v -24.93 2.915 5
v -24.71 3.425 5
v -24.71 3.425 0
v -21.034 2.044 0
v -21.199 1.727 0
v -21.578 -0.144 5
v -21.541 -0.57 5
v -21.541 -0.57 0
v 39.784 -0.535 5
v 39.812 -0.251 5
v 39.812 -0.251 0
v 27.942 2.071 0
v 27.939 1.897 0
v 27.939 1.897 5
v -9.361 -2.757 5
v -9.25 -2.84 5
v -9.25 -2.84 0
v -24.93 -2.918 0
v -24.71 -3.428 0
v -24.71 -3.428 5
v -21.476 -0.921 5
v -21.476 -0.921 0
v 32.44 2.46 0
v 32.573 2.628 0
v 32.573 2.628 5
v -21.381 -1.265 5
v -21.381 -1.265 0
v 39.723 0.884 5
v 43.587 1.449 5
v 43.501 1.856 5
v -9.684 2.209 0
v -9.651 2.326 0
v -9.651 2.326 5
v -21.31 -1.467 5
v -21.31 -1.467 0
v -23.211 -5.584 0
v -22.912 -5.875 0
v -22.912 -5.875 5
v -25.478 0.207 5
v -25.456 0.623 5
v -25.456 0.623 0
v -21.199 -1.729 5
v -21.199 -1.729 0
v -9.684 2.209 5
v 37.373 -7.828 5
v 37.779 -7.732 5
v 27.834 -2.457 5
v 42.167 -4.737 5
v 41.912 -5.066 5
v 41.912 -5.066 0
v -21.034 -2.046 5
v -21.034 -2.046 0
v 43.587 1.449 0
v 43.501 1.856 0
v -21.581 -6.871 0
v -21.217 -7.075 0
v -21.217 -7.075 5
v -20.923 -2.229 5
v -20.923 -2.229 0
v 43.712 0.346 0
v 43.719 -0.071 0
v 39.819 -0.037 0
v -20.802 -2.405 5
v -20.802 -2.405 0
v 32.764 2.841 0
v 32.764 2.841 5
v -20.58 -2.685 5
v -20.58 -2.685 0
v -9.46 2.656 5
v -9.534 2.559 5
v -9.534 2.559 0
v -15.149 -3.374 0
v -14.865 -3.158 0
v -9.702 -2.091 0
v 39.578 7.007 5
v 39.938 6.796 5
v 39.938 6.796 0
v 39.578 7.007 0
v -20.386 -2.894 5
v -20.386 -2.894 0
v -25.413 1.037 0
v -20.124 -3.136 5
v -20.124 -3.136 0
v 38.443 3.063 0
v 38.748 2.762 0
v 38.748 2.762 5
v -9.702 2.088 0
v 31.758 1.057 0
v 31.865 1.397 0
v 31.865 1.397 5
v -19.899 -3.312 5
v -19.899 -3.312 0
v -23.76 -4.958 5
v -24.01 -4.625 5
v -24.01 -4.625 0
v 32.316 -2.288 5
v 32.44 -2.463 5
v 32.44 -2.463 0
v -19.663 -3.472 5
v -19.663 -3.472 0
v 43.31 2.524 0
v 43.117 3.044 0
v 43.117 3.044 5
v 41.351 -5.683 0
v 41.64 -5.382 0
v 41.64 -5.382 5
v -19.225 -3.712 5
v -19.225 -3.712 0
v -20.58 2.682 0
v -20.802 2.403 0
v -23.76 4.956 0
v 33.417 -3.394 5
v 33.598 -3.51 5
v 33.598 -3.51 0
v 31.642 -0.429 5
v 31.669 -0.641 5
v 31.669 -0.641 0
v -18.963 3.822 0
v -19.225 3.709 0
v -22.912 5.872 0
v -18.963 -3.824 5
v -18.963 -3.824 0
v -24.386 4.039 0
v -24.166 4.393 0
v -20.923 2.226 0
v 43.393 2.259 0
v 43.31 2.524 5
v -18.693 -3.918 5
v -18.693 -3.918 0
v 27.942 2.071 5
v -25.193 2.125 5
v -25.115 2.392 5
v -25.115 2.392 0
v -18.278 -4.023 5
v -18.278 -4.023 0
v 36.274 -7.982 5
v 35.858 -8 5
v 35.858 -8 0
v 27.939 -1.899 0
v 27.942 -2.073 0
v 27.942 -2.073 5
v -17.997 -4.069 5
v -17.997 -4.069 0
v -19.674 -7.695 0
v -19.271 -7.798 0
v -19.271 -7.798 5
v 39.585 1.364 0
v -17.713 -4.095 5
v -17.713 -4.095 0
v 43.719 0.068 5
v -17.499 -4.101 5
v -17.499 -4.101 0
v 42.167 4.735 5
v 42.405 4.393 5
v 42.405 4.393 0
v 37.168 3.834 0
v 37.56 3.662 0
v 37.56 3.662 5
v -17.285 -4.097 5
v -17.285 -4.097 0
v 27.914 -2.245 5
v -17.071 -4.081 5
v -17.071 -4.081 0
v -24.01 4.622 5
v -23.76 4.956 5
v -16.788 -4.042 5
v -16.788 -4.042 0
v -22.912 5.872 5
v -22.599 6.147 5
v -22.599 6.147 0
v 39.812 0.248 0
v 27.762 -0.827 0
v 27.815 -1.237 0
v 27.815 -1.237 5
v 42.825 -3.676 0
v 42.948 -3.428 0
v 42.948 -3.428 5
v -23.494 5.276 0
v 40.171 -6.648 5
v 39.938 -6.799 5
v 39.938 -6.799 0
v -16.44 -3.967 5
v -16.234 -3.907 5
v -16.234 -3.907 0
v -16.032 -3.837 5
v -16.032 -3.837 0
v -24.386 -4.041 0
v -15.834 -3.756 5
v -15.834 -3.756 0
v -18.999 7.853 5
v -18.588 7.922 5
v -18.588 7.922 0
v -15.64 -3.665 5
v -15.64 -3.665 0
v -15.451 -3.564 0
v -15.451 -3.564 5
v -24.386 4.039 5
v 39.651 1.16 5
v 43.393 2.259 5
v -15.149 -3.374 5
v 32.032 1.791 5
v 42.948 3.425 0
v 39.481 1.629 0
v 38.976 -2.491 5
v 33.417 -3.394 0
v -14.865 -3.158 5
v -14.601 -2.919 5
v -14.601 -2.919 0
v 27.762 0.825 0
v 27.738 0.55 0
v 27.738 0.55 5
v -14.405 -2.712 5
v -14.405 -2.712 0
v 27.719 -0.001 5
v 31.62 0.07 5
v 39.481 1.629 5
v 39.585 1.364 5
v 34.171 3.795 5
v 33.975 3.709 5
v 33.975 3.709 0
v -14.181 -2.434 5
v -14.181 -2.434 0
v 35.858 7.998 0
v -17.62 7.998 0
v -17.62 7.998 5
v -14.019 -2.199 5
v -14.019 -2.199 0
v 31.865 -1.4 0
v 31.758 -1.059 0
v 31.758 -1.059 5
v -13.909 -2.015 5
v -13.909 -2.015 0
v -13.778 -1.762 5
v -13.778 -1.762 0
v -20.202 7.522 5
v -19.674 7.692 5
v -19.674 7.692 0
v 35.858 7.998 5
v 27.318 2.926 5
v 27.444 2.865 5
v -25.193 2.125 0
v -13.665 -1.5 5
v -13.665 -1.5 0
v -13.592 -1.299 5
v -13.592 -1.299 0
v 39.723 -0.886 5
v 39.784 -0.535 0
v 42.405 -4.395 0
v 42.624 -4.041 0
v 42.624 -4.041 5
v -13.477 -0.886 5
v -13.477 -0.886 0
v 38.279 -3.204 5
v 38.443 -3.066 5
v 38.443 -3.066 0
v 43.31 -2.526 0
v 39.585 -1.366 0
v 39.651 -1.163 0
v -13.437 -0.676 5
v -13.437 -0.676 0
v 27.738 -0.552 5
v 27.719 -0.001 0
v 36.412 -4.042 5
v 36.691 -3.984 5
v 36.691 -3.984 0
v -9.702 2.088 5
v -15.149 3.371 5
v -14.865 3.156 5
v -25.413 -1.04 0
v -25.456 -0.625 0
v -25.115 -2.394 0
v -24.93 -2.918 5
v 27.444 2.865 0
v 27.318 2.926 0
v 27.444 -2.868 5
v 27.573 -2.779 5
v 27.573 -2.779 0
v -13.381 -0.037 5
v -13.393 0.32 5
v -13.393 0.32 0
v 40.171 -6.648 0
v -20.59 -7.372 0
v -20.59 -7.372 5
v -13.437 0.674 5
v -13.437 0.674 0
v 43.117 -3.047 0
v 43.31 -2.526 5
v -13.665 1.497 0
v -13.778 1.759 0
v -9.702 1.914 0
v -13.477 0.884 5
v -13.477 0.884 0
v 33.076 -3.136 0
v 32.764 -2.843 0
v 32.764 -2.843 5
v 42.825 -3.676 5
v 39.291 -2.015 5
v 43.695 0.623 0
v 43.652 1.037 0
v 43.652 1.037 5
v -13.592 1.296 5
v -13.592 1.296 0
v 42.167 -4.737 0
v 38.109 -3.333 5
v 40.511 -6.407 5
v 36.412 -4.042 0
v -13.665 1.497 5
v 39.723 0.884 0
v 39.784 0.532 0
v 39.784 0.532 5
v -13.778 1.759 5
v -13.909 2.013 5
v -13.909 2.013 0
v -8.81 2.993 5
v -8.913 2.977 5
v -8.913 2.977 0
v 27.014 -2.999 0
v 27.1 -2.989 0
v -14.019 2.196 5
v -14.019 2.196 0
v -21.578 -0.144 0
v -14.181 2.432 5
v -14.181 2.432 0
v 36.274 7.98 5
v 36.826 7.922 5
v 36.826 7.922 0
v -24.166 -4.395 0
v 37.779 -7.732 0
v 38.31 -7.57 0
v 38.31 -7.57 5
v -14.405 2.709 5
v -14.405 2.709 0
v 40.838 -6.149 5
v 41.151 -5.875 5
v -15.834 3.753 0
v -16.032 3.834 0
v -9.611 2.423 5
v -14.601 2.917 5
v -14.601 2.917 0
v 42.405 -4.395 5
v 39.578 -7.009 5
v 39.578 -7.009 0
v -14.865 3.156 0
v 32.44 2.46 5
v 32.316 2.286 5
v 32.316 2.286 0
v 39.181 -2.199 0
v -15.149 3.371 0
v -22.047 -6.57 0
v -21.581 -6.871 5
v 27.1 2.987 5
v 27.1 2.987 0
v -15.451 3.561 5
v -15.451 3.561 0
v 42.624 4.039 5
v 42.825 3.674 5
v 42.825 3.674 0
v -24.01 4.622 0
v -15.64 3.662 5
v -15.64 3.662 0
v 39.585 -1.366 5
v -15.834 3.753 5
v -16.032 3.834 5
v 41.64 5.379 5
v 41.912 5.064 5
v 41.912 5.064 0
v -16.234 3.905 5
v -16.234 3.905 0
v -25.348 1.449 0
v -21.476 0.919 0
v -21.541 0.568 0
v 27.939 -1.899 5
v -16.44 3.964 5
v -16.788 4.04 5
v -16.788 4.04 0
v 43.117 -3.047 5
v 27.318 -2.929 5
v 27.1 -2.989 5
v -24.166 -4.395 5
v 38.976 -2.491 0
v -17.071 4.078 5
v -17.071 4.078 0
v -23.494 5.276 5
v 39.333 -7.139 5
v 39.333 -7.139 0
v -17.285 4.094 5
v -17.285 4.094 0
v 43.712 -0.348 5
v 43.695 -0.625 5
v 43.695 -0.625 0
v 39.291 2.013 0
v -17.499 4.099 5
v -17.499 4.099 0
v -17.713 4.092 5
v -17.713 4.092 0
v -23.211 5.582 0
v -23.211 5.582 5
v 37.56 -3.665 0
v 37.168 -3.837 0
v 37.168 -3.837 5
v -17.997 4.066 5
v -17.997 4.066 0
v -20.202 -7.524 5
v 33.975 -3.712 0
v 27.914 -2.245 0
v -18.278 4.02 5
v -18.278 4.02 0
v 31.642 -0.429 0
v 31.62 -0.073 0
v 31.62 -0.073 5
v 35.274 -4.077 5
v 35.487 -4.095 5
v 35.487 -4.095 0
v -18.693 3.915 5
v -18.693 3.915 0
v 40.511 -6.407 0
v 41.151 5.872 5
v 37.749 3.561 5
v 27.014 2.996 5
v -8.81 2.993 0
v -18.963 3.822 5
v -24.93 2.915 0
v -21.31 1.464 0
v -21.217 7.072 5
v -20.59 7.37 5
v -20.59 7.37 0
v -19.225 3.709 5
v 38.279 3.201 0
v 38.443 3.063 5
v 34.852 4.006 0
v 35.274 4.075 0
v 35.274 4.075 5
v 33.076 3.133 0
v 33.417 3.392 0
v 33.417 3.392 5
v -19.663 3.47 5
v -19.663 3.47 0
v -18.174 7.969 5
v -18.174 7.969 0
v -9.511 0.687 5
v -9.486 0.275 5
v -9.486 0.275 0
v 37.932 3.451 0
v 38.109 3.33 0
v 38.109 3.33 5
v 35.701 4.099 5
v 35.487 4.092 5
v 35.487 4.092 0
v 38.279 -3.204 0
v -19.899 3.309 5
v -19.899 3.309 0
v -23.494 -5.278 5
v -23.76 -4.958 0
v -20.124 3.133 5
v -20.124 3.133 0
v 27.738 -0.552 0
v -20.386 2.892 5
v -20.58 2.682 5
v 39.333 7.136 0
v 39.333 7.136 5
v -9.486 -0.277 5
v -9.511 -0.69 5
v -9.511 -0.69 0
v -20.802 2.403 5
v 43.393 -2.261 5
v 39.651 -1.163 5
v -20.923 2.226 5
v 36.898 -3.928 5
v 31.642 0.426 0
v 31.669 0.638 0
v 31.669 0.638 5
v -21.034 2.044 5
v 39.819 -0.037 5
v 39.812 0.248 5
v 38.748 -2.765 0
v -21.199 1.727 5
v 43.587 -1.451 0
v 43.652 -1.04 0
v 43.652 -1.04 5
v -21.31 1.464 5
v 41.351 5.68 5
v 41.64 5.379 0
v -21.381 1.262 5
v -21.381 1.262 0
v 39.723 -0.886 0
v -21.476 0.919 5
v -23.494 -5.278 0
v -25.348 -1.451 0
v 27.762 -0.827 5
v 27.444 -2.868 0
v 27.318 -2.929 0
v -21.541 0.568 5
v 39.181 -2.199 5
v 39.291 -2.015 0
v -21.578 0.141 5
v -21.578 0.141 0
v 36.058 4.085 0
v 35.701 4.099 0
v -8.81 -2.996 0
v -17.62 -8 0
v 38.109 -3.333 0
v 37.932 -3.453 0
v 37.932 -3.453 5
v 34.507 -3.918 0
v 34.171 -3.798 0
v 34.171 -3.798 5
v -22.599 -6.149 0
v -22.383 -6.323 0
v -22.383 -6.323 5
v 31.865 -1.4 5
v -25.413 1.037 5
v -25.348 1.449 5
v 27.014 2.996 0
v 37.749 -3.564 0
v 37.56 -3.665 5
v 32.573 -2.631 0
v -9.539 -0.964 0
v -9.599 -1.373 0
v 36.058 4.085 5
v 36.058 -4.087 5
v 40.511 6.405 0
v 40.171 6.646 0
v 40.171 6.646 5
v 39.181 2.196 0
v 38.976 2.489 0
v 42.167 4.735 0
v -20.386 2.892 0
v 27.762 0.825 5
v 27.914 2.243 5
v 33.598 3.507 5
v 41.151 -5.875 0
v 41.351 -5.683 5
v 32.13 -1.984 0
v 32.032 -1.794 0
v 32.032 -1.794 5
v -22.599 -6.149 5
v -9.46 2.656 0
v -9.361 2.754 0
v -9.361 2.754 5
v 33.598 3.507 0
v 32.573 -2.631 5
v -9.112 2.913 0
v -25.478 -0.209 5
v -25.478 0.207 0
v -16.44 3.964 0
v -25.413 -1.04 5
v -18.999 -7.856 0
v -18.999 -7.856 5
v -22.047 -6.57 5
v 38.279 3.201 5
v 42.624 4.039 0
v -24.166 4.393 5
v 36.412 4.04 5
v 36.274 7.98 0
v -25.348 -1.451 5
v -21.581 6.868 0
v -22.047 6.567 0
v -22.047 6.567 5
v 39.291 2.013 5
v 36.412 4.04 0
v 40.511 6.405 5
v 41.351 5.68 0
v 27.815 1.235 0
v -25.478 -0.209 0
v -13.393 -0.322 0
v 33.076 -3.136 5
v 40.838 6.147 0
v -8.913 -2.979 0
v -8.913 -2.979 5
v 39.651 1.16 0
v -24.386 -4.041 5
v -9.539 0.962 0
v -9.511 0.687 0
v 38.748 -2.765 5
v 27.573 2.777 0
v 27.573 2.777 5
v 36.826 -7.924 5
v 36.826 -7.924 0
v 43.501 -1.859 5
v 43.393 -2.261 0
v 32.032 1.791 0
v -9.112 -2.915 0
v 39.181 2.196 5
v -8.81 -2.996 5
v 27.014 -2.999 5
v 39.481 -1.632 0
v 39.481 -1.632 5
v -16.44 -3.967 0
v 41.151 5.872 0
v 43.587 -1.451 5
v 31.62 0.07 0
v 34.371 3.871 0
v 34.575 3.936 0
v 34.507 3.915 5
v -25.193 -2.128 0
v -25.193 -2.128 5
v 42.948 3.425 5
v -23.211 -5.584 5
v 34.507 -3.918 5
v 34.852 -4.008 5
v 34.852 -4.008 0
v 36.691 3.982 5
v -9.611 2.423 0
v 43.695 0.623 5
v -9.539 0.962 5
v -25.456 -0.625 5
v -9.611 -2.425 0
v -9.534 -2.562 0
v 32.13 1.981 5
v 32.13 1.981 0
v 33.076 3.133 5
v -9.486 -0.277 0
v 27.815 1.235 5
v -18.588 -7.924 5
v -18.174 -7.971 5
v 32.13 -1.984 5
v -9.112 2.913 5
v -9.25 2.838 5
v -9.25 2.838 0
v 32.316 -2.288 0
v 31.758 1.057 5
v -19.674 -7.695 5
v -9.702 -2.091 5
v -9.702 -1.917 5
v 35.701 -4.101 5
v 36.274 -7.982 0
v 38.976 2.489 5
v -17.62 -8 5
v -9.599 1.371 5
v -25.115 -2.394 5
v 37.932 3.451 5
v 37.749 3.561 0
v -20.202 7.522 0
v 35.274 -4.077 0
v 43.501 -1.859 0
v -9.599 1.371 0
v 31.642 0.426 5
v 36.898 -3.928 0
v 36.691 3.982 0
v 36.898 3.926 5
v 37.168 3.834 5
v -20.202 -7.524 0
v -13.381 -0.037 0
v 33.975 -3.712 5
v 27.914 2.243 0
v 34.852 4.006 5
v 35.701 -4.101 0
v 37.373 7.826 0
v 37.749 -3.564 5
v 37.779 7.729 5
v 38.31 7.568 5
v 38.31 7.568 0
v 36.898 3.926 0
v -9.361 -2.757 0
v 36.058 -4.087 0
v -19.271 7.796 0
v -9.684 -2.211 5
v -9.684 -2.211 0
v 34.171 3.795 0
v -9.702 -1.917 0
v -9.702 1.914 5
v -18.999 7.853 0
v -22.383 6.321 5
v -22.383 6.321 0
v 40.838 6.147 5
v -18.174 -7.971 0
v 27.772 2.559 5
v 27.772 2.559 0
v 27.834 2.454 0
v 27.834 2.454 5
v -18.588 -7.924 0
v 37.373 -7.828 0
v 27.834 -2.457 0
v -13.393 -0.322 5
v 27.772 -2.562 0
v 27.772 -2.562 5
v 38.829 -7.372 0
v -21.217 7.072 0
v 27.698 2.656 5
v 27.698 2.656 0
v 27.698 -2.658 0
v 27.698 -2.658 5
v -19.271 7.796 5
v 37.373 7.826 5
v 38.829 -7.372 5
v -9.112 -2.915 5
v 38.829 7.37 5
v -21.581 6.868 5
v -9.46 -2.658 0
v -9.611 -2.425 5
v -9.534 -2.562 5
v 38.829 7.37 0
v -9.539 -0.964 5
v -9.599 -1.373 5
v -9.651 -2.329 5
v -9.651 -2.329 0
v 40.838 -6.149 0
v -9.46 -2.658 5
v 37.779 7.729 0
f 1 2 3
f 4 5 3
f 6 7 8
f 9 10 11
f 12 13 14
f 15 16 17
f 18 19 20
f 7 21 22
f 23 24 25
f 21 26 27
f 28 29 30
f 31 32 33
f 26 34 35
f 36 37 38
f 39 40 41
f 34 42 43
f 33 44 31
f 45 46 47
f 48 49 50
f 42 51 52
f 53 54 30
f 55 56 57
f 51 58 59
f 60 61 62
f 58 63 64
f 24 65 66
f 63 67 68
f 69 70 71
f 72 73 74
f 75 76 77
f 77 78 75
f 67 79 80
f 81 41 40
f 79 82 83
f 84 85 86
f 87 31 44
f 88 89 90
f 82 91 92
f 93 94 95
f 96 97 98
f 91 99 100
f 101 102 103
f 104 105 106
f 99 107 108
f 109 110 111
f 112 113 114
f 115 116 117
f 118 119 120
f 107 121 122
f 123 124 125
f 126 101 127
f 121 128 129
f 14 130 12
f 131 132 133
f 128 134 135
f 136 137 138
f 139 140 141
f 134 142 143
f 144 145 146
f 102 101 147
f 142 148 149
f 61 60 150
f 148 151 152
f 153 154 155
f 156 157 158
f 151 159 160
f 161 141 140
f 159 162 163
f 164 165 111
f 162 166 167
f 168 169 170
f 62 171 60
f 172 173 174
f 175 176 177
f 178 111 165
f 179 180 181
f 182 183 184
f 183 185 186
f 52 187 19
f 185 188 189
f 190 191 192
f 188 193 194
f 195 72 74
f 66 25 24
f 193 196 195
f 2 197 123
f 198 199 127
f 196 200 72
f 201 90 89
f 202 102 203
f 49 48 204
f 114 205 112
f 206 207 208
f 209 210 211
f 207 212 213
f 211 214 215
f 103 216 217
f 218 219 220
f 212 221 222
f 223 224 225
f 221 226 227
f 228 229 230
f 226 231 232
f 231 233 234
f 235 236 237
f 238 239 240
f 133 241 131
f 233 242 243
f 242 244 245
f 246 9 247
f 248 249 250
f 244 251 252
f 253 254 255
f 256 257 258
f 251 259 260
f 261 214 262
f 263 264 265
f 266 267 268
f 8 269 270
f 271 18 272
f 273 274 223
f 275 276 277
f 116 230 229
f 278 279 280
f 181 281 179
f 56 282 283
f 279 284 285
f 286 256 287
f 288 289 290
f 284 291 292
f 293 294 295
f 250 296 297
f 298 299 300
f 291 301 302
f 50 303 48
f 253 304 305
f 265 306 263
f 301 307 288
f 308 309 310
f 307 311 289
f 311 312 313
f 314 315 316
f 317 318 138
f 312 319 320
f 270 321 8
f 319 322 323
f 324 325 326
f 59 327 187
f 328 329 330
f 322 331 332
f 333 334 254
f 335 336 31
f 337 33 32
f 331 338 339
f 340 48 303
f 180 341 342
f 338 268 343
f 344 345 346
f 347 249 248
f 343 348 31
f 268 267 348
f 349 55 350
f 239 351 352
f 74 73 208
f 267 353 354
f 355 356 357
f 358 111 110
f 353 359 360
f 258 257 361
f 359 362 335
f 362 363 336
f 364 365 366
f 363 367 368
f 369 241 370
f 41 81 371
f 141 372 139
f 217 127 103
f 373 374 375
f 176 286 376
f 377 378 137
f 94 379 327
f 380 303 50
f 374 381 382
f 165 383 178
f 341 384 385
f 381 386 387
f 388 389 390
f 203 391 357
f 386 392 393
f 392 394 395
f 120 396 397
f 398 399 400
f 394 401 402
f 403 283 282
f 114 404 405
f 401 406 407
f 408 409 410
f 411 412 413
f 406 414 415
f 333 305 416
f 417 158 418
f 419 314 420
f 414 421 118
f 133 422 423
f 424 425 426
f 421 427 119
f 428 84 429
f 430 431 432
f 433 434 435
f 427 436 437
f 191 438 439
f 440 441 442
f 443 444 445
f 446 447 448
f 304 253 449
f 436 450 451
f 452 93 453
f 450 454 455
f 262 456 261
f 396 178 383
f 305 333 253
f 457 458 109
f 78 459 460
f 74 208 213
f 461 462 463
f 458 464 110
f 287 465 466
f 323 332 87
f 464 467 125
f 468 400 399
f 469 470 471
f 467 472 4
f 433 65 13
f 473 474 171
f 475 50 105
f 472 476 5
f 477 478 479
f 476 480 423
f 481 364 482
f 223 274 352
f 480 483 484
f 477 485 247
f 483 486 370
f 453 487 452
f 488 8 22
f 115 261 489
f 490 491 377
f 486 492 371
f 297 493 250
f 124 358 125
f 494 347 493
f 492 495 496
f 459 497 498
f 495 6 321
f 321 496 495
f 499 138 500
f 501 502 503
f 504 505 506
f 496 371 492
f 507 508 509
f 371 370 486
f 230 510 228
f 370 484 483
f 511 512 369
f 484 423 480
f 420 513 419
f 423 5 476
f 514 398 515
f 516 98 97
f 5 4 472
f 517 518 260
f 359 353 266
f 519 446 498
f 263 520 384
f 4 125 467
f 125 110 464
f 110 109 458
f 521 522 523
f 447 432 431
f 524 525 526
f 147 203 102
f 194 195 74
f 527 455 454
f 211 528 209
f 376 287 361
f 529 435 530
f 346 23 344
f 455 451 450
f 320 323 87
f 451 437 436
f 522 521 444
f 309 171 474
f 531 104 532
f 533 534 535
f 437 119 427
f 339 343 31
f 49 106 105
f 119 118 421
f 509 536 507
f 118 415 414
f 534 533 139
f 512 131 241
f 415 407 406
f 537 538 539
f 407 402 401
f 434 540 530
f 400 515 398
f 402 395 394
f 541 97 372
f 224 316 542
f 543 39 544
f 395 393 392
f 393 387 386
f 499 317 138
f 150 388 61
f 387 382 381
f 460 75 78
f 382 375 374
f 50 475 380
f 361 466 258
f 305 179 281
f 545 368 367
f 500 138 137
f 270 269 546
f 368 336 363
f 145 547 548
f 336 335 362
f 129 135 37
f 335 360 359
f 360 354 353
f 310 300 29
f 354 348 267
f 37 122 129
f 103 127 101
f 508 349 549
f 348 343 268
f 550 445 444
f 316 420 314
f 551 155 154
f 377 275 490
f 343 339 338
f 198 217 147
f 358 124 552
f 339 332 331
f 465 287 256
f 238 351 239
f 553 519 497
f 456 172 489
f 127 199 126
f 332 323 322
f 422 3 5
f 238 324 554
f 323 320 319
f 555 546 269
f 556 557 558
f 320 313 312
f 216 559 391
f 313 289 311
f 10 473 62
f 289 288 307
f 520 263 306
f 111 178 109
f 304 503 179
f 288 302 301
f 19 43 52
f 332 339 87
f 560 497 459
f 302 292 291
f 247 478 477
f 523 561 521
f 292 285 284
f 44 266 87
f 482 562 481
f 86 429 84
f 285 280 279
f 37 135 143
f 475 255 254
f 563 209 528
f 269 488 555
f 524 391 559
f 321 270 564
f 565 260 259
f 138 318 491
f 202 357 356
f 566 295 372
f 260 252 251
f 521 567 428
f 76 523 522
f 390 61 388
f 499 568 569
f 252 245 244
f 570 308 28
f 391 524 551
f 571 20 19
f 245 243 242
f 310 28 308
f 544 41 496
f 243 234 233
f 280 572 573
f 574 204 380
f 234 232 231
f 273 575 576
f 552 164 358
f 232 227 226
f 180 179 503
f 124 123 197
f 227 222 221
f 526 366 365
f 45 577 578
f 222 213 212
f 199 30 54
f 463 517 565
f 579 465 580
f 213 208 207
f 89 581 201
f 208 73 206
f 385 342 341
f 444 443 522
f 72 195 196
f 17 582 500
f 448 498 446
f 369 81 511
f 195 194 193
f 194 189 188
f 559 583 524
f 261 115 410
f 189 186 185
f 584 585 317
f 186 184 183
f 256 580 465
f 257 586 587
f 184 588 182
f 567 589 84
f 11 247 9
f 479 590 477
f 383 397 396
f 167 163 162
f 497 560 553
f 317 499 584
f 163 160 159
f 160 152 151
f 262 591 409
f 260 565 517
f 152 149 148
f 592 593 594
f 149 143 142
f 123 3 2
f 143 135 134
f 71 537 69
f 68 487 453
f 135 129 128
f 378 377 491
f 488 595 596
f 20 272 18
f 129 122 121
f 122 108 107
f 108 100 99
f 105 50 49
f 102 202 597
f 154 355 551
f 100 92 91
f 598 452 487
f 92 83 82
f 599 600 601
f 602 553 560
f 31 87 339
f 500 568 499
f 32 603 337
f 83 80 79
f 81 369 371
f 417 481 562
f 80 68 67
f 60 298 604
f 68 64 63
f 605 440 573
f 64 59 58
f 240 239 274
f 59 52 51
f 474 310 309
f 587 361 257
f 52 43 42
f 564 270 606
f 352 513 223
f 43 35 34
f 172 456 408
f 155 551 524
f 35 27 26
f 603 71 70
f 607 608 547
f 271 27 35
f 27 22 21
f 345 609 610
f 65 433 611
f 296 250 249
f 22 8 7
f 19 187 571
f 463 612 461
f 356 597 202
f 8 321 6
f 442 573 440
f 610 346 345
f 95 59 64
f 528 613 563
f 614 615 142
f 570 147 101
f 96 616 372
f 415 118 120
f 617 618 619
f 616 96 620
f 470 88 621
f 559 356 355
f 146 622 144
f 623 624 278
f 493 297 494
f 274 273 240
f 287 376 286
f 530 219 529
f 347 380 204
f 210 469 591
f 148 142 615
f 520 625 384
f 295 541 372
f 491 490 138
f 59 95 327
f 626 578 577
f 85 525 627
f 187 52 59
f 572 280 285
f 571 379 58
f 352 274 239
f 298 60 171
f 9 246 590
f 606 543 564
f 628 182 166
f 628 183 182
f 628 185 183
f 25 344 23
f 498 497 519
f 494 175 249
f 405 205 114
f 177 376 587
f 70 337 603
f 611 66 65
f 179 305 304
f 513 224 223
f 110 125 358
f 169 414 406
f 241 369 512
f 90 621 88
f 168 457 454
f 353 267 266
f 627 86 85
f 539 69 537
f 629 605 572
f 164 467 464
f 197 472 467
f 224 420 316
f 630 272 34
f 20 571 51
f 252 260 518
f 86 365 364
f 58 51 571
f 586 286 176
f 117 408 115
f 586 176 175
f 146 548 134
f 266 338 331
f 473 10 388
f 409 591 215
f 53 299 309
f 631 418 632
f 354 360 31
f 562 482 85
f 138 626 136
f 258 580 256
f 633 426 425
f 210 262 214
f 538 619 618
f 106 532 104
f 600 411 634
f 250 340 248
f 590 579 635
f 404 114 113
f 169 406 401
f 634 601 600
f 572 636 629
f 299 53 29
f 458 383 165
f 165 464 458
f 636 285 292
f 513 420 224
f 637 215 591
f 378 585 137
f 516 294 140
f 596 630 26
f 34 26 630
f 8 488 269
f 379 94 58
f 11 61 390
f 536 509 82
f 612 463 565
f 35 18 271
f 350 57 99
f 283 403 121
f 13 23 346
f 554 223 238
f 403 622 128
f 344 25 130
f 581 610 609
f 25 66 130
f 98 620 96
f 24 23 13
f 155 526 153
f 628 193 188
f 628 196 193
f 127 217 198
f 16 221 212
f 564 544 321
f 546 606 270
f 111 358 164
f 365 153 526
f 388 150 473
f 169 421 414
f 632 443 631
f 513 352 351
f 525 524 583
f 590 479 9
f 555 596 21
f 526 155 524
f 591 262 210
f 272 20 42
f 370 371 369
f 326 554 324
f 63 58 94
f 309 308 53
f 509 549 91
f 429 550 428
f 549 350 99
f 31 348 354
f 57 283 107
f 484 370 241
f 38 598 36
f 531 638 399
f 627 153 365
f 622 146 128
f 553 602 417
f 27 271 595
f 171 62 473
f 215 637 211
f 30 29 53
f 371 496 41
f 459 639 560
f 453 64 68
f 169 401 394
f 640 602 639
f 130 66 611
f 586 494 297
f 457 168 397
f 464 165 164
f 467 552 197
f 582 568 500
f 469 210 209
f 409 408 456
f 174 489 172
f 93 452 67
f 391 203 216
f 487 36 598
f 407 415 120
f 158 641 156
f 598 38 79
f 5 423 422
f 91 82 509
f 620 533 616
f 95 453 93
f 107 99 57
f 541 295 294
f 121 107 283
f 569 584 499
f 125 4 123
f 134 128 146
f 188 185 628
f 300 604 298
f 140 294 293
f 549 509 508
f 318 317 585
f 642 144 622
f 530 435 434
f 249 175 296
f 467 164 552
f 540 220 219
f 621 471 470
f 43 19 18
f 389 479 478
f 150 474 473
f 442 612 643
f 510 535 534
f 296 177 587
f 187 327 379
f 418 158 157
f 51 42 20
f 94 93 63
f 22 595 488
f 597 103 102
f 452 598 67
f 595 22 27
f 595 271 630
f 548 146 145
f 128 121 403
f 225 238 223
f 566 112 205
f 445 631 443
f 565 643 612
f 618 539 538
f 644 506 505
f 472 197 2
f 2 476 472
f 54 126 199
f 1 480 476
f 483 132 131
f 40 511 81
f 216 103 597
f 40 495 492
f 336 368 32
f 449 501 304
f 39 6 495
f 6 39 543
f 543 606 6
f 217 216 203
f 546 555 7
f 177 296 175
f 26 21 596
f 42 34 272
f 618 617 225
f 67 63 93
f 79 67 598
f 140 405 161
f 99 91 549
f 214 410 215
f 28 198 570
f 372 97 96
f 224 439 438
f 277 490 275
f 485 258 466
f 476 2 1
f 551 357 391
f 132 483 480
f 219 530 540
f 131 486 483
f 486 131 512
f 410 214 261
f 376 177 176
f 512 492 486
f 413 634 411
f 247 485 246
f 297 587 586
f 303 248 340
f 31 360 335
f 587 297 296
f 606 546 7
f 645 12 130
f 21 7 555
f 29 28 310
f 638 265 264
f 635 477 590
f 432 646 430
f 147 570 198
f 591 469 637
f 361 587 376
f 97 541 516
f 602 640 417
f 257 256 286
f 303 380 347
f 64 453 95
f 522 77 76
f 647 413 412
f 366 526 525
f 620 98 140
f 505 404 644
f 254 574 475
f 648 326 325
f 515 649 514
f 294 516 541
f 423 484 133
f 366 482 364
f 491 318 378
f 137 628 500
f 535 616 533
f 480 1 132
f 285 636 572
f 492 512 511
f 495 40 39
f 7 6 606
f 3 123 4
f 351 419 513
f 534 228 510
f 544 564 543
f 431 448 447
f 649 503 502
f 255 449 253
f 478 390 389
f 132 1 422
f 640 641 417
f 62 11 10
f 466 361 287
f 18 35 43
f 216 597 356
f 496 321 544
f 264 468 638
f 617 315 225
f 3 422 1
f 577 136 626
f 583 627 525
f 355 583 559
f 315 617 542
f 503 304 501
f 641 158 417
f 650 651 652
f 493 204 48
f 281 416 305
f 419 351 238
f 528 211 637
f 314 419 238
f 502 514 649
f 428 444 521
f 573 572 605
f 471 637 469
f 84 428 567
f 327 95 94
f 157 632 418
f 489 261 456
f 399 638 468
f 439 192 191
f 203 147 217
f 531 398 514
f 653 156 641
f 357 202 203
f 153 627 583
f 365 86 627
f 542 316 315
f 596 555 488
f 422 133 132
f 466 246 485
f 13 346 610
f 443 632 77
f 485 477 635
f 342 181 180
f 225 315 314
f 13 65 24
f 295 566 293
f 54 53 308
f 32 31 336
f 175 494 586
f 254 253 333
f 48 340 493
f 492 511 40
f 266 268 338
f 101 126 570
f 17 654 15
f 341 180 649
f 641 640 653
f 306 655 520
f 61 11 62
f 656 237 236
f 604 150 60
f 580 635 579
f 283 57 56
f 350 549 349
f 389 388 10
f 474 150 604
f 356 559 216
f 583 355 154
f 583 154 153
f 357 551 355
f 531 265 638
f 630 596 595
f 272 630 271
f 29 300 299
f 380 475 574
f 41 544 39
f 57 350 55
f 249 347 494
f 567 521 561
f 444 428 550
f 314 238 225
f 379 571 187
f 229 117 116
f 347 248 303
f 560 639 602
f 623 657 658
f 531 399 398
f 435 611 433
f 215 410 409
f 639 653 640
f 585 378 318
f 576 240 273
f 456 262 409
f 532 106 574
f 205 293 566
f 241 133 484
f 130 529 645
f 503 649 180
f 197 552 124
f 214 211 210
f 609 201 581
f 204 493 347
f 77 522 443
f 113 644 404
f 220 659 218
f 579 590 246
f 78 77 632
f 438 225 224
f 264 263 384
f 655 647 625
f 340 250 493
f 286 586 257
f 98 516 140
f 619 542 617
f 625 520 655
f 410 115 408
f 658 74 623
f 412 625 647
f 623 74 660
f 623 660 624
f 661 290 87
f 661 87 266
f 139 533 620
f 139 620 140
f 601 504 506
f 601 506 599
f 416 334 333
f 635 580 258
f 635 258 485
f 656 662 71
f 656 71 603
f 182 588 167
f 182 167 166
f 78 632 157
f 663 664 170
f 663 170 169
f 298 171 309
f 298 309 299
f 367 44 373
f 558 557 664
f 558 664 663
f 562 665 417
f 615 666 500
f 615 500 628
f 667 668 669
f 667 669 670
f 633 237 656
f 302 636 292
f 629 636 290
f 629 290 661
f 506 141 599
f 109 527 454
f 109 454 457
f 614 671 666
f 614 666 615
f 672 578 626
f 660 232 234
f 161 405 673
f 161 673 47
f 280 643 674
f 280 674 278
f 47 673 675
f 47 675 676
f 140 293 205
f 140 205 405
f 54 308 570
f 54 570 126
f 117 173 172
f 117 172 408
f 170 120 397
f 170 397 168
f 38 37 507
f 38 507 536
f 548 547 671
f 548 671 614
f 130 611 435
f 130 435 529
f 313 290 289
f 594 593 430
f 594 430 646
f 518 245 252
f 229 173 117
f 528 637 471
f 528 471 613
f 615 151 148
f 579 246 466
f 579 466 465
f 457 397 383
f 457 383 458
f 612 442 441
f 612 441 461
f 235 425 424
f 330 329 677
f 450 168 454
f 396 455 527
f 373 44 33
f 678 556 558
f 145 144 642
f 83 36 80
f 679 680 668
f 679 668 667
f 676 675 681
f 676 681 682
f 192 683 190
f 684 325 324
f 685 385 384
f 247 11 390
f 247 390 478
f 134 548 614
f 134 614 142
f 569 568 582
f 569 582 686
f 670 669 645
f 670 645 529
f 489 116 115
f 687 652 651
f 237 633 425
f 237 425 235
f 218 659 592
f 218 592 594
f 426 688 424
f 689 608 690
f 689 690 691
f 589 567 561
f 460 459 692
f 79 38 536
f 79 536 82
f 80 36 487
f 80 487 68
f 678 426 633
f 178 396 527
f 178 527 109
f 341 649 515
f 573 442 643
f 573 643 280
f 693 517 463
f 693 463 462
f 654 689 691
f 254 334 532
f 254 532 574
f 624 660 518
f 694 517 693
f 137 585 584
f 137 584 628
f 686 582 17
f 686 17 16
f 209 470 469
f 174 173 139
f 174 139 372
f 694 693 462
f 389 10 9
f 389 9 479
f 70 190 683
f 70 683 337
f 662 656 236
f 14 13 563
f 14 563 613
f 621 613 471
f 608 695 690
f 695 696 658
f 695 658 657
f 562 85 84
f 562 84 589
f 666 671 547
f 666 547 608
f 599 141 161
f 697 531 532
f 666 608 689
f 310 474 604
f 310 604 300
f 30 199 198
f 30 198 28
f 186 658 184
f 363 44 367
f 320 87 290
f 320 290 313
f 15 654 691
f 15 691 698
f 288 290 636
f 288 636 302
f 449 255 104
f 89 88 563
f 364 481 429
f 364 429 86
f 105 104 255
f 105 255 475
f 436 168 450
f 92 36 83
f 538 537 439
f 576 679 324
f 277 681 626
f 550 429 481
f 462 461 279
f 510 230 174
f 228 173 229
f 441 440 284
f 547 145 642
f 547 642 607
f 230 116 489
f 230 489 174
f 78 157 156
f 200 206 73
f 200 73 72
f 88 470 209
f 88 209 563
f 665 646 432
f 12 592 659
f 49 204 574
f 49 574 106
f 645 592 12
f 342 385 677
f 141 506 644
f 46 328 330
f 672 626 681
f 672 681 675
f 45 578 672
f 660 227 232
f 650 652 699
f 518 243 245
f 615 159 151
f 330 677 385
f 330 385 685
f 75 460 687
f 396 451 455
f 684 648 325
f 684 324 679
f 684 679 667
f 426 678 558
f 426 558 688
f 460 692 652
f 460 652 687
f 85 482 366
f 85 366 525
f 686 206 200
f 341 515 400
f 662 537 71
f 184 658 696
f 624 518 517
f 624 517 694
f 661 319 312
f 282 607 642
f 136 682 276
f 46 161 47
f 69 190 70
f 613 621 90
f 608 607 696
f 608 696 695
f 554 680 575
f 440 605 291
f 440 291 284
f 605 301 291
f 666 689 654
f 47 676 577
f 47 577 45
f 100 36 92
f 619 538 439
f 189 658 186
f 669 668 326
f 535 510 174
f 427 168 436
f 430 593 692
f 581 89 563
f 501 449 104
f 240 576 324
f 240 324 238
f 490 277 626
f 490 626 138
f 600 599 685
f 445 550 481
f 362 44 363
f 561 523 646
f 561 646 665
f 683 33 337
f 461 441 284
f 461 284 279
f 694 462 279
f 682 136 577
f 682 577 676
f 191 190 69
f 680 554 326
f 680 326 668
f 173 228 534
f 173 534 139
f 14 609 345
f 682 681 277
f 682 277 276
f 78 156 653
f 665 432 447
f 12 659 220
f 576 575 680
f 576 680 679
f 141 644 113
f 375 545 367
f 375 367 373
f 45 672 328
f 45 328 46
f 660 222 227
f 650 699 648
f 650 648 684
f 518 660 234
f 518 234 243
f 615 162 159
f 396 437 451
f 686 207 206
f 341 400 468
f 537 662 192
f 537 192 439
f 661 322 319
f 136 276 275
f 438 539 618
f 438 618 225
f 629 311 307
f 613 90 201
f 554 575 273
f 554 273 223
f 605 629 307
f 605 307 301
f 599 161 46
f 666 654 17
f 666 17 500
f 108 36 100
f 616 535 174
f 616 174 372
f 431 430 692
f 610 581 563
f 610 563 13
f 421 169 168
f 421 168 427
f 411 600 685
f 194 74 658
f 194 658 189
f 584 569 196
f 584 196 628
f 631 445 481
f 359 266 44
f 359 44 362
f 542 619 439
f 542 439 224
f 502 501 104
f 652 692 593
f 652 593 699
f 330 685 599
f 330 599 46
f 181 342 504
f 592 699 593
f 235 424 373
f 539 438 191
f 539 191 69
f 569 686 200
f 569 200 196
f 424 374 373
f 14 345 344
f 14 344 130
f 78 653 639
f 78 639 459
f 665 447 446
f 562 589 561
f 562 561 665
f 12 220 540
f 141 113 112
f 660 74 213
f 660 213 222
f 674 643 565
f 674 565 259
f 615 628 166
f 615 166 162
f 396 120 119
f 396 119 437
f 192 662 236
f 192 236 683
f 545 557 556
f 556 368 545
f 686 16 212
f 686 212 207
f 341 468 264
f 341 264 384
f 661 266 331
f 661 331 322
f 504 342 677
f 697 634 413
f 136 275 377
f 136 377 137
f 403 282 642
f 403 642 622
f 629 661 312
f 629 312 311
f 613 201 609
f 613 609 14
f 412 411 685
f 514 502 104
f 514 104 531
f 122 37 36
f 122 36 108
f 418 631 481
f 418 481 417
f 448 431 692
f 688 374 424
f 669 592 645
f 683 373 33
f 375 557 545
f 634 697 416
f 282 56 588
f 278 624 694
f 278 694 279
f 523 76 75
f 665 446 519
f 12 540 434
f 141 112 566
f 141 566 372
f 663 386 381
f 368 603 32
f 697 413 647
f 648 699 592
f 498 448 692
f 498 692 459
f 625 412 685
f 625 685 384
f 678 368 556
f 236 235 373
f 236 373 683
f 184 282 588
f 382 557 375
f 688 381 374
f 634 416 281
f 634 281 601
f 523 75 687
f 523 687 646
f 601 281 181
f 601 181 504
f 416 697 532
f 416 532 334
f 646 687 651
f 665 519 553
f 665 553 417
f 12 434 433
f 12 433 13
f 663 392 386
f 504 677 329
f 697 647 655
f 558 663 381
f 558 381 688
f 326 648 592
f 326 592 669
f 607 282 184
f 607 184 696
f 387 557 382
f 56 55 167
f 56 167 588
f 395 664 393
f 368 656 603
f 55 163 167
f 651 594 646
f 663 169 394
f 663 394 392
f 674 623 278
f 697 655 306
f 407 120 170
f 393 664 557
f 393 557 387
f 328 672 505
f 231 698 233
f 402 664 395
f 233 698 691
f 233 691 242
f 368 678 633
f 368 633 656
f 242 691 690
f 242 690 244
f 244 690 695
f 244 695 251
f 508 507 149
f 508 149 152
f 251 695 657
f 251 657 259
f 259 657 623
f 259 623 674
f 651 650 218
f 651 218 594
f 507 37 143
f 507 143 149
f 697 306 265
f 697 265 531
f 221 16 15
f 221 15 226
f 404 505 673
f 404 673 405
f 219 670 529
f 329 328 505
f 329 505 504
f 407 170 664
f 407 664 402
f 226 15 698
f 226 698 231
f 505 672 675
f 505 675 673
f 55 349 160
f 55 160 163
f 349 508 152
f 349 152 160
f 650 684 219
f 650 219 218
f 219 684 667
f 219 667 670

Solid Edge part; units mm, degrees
sketch "Sketch1" plane through (0, 0, 0) normal (0, 0, 1) x (1, 0, 0)
  circle A0 centre (-17.4781, 0) radius 4.1
  line L0 (-17.4781, 8) -> (35.7219, 8)
  line L1 (35.7219, -8) -> (-17.4781, -8)
  arc A1 (-17.4781, -8) -> (-17.4781, 8) centre (-17.4781, 0) cw
  arc A2 (35.7219, 8) -> (35.7219, -8) centre (35.7219, 0) cw
  line L2 (-8.7031, 3) -> (26.9469, 3)
  arc A3 (27.9219, 1.7778) -> (26.9469, 3) centre (26.9469, 2) ccw
  arc A4 (27.9219, -1.7778) -> (27.9219, 1.7778) centre (35.7219, 0) cw
  arc A5 (26.9469, -3) -> (27.9219, -1.7778) centre (26.9469, -2) ccw
  line L3 (26.9469, -3) -> (-8.7031, -3)
  arc A6 (-9.6781, -1.7778) -> (-8.7031, -3) centre (-8.7031, -2) ccw
  arc A7 (-9.6781, 1.7778) -> (-9.6781, -1.7778) centre (-17.4781, 0) cw
  arc A8 (-8.7031, 3) -> (-9.6781, 1.7778) centre (-8.7031, 2) ccw
  circle A9 centre (35.7219, 0) radius 4.1
extrude "Protrusion1" add sketch "Sketch1" along normal blind 5
extrude "Cutout1" [suppressed]
extrude "ExtrudedProtrusion_2" [suppressed]
